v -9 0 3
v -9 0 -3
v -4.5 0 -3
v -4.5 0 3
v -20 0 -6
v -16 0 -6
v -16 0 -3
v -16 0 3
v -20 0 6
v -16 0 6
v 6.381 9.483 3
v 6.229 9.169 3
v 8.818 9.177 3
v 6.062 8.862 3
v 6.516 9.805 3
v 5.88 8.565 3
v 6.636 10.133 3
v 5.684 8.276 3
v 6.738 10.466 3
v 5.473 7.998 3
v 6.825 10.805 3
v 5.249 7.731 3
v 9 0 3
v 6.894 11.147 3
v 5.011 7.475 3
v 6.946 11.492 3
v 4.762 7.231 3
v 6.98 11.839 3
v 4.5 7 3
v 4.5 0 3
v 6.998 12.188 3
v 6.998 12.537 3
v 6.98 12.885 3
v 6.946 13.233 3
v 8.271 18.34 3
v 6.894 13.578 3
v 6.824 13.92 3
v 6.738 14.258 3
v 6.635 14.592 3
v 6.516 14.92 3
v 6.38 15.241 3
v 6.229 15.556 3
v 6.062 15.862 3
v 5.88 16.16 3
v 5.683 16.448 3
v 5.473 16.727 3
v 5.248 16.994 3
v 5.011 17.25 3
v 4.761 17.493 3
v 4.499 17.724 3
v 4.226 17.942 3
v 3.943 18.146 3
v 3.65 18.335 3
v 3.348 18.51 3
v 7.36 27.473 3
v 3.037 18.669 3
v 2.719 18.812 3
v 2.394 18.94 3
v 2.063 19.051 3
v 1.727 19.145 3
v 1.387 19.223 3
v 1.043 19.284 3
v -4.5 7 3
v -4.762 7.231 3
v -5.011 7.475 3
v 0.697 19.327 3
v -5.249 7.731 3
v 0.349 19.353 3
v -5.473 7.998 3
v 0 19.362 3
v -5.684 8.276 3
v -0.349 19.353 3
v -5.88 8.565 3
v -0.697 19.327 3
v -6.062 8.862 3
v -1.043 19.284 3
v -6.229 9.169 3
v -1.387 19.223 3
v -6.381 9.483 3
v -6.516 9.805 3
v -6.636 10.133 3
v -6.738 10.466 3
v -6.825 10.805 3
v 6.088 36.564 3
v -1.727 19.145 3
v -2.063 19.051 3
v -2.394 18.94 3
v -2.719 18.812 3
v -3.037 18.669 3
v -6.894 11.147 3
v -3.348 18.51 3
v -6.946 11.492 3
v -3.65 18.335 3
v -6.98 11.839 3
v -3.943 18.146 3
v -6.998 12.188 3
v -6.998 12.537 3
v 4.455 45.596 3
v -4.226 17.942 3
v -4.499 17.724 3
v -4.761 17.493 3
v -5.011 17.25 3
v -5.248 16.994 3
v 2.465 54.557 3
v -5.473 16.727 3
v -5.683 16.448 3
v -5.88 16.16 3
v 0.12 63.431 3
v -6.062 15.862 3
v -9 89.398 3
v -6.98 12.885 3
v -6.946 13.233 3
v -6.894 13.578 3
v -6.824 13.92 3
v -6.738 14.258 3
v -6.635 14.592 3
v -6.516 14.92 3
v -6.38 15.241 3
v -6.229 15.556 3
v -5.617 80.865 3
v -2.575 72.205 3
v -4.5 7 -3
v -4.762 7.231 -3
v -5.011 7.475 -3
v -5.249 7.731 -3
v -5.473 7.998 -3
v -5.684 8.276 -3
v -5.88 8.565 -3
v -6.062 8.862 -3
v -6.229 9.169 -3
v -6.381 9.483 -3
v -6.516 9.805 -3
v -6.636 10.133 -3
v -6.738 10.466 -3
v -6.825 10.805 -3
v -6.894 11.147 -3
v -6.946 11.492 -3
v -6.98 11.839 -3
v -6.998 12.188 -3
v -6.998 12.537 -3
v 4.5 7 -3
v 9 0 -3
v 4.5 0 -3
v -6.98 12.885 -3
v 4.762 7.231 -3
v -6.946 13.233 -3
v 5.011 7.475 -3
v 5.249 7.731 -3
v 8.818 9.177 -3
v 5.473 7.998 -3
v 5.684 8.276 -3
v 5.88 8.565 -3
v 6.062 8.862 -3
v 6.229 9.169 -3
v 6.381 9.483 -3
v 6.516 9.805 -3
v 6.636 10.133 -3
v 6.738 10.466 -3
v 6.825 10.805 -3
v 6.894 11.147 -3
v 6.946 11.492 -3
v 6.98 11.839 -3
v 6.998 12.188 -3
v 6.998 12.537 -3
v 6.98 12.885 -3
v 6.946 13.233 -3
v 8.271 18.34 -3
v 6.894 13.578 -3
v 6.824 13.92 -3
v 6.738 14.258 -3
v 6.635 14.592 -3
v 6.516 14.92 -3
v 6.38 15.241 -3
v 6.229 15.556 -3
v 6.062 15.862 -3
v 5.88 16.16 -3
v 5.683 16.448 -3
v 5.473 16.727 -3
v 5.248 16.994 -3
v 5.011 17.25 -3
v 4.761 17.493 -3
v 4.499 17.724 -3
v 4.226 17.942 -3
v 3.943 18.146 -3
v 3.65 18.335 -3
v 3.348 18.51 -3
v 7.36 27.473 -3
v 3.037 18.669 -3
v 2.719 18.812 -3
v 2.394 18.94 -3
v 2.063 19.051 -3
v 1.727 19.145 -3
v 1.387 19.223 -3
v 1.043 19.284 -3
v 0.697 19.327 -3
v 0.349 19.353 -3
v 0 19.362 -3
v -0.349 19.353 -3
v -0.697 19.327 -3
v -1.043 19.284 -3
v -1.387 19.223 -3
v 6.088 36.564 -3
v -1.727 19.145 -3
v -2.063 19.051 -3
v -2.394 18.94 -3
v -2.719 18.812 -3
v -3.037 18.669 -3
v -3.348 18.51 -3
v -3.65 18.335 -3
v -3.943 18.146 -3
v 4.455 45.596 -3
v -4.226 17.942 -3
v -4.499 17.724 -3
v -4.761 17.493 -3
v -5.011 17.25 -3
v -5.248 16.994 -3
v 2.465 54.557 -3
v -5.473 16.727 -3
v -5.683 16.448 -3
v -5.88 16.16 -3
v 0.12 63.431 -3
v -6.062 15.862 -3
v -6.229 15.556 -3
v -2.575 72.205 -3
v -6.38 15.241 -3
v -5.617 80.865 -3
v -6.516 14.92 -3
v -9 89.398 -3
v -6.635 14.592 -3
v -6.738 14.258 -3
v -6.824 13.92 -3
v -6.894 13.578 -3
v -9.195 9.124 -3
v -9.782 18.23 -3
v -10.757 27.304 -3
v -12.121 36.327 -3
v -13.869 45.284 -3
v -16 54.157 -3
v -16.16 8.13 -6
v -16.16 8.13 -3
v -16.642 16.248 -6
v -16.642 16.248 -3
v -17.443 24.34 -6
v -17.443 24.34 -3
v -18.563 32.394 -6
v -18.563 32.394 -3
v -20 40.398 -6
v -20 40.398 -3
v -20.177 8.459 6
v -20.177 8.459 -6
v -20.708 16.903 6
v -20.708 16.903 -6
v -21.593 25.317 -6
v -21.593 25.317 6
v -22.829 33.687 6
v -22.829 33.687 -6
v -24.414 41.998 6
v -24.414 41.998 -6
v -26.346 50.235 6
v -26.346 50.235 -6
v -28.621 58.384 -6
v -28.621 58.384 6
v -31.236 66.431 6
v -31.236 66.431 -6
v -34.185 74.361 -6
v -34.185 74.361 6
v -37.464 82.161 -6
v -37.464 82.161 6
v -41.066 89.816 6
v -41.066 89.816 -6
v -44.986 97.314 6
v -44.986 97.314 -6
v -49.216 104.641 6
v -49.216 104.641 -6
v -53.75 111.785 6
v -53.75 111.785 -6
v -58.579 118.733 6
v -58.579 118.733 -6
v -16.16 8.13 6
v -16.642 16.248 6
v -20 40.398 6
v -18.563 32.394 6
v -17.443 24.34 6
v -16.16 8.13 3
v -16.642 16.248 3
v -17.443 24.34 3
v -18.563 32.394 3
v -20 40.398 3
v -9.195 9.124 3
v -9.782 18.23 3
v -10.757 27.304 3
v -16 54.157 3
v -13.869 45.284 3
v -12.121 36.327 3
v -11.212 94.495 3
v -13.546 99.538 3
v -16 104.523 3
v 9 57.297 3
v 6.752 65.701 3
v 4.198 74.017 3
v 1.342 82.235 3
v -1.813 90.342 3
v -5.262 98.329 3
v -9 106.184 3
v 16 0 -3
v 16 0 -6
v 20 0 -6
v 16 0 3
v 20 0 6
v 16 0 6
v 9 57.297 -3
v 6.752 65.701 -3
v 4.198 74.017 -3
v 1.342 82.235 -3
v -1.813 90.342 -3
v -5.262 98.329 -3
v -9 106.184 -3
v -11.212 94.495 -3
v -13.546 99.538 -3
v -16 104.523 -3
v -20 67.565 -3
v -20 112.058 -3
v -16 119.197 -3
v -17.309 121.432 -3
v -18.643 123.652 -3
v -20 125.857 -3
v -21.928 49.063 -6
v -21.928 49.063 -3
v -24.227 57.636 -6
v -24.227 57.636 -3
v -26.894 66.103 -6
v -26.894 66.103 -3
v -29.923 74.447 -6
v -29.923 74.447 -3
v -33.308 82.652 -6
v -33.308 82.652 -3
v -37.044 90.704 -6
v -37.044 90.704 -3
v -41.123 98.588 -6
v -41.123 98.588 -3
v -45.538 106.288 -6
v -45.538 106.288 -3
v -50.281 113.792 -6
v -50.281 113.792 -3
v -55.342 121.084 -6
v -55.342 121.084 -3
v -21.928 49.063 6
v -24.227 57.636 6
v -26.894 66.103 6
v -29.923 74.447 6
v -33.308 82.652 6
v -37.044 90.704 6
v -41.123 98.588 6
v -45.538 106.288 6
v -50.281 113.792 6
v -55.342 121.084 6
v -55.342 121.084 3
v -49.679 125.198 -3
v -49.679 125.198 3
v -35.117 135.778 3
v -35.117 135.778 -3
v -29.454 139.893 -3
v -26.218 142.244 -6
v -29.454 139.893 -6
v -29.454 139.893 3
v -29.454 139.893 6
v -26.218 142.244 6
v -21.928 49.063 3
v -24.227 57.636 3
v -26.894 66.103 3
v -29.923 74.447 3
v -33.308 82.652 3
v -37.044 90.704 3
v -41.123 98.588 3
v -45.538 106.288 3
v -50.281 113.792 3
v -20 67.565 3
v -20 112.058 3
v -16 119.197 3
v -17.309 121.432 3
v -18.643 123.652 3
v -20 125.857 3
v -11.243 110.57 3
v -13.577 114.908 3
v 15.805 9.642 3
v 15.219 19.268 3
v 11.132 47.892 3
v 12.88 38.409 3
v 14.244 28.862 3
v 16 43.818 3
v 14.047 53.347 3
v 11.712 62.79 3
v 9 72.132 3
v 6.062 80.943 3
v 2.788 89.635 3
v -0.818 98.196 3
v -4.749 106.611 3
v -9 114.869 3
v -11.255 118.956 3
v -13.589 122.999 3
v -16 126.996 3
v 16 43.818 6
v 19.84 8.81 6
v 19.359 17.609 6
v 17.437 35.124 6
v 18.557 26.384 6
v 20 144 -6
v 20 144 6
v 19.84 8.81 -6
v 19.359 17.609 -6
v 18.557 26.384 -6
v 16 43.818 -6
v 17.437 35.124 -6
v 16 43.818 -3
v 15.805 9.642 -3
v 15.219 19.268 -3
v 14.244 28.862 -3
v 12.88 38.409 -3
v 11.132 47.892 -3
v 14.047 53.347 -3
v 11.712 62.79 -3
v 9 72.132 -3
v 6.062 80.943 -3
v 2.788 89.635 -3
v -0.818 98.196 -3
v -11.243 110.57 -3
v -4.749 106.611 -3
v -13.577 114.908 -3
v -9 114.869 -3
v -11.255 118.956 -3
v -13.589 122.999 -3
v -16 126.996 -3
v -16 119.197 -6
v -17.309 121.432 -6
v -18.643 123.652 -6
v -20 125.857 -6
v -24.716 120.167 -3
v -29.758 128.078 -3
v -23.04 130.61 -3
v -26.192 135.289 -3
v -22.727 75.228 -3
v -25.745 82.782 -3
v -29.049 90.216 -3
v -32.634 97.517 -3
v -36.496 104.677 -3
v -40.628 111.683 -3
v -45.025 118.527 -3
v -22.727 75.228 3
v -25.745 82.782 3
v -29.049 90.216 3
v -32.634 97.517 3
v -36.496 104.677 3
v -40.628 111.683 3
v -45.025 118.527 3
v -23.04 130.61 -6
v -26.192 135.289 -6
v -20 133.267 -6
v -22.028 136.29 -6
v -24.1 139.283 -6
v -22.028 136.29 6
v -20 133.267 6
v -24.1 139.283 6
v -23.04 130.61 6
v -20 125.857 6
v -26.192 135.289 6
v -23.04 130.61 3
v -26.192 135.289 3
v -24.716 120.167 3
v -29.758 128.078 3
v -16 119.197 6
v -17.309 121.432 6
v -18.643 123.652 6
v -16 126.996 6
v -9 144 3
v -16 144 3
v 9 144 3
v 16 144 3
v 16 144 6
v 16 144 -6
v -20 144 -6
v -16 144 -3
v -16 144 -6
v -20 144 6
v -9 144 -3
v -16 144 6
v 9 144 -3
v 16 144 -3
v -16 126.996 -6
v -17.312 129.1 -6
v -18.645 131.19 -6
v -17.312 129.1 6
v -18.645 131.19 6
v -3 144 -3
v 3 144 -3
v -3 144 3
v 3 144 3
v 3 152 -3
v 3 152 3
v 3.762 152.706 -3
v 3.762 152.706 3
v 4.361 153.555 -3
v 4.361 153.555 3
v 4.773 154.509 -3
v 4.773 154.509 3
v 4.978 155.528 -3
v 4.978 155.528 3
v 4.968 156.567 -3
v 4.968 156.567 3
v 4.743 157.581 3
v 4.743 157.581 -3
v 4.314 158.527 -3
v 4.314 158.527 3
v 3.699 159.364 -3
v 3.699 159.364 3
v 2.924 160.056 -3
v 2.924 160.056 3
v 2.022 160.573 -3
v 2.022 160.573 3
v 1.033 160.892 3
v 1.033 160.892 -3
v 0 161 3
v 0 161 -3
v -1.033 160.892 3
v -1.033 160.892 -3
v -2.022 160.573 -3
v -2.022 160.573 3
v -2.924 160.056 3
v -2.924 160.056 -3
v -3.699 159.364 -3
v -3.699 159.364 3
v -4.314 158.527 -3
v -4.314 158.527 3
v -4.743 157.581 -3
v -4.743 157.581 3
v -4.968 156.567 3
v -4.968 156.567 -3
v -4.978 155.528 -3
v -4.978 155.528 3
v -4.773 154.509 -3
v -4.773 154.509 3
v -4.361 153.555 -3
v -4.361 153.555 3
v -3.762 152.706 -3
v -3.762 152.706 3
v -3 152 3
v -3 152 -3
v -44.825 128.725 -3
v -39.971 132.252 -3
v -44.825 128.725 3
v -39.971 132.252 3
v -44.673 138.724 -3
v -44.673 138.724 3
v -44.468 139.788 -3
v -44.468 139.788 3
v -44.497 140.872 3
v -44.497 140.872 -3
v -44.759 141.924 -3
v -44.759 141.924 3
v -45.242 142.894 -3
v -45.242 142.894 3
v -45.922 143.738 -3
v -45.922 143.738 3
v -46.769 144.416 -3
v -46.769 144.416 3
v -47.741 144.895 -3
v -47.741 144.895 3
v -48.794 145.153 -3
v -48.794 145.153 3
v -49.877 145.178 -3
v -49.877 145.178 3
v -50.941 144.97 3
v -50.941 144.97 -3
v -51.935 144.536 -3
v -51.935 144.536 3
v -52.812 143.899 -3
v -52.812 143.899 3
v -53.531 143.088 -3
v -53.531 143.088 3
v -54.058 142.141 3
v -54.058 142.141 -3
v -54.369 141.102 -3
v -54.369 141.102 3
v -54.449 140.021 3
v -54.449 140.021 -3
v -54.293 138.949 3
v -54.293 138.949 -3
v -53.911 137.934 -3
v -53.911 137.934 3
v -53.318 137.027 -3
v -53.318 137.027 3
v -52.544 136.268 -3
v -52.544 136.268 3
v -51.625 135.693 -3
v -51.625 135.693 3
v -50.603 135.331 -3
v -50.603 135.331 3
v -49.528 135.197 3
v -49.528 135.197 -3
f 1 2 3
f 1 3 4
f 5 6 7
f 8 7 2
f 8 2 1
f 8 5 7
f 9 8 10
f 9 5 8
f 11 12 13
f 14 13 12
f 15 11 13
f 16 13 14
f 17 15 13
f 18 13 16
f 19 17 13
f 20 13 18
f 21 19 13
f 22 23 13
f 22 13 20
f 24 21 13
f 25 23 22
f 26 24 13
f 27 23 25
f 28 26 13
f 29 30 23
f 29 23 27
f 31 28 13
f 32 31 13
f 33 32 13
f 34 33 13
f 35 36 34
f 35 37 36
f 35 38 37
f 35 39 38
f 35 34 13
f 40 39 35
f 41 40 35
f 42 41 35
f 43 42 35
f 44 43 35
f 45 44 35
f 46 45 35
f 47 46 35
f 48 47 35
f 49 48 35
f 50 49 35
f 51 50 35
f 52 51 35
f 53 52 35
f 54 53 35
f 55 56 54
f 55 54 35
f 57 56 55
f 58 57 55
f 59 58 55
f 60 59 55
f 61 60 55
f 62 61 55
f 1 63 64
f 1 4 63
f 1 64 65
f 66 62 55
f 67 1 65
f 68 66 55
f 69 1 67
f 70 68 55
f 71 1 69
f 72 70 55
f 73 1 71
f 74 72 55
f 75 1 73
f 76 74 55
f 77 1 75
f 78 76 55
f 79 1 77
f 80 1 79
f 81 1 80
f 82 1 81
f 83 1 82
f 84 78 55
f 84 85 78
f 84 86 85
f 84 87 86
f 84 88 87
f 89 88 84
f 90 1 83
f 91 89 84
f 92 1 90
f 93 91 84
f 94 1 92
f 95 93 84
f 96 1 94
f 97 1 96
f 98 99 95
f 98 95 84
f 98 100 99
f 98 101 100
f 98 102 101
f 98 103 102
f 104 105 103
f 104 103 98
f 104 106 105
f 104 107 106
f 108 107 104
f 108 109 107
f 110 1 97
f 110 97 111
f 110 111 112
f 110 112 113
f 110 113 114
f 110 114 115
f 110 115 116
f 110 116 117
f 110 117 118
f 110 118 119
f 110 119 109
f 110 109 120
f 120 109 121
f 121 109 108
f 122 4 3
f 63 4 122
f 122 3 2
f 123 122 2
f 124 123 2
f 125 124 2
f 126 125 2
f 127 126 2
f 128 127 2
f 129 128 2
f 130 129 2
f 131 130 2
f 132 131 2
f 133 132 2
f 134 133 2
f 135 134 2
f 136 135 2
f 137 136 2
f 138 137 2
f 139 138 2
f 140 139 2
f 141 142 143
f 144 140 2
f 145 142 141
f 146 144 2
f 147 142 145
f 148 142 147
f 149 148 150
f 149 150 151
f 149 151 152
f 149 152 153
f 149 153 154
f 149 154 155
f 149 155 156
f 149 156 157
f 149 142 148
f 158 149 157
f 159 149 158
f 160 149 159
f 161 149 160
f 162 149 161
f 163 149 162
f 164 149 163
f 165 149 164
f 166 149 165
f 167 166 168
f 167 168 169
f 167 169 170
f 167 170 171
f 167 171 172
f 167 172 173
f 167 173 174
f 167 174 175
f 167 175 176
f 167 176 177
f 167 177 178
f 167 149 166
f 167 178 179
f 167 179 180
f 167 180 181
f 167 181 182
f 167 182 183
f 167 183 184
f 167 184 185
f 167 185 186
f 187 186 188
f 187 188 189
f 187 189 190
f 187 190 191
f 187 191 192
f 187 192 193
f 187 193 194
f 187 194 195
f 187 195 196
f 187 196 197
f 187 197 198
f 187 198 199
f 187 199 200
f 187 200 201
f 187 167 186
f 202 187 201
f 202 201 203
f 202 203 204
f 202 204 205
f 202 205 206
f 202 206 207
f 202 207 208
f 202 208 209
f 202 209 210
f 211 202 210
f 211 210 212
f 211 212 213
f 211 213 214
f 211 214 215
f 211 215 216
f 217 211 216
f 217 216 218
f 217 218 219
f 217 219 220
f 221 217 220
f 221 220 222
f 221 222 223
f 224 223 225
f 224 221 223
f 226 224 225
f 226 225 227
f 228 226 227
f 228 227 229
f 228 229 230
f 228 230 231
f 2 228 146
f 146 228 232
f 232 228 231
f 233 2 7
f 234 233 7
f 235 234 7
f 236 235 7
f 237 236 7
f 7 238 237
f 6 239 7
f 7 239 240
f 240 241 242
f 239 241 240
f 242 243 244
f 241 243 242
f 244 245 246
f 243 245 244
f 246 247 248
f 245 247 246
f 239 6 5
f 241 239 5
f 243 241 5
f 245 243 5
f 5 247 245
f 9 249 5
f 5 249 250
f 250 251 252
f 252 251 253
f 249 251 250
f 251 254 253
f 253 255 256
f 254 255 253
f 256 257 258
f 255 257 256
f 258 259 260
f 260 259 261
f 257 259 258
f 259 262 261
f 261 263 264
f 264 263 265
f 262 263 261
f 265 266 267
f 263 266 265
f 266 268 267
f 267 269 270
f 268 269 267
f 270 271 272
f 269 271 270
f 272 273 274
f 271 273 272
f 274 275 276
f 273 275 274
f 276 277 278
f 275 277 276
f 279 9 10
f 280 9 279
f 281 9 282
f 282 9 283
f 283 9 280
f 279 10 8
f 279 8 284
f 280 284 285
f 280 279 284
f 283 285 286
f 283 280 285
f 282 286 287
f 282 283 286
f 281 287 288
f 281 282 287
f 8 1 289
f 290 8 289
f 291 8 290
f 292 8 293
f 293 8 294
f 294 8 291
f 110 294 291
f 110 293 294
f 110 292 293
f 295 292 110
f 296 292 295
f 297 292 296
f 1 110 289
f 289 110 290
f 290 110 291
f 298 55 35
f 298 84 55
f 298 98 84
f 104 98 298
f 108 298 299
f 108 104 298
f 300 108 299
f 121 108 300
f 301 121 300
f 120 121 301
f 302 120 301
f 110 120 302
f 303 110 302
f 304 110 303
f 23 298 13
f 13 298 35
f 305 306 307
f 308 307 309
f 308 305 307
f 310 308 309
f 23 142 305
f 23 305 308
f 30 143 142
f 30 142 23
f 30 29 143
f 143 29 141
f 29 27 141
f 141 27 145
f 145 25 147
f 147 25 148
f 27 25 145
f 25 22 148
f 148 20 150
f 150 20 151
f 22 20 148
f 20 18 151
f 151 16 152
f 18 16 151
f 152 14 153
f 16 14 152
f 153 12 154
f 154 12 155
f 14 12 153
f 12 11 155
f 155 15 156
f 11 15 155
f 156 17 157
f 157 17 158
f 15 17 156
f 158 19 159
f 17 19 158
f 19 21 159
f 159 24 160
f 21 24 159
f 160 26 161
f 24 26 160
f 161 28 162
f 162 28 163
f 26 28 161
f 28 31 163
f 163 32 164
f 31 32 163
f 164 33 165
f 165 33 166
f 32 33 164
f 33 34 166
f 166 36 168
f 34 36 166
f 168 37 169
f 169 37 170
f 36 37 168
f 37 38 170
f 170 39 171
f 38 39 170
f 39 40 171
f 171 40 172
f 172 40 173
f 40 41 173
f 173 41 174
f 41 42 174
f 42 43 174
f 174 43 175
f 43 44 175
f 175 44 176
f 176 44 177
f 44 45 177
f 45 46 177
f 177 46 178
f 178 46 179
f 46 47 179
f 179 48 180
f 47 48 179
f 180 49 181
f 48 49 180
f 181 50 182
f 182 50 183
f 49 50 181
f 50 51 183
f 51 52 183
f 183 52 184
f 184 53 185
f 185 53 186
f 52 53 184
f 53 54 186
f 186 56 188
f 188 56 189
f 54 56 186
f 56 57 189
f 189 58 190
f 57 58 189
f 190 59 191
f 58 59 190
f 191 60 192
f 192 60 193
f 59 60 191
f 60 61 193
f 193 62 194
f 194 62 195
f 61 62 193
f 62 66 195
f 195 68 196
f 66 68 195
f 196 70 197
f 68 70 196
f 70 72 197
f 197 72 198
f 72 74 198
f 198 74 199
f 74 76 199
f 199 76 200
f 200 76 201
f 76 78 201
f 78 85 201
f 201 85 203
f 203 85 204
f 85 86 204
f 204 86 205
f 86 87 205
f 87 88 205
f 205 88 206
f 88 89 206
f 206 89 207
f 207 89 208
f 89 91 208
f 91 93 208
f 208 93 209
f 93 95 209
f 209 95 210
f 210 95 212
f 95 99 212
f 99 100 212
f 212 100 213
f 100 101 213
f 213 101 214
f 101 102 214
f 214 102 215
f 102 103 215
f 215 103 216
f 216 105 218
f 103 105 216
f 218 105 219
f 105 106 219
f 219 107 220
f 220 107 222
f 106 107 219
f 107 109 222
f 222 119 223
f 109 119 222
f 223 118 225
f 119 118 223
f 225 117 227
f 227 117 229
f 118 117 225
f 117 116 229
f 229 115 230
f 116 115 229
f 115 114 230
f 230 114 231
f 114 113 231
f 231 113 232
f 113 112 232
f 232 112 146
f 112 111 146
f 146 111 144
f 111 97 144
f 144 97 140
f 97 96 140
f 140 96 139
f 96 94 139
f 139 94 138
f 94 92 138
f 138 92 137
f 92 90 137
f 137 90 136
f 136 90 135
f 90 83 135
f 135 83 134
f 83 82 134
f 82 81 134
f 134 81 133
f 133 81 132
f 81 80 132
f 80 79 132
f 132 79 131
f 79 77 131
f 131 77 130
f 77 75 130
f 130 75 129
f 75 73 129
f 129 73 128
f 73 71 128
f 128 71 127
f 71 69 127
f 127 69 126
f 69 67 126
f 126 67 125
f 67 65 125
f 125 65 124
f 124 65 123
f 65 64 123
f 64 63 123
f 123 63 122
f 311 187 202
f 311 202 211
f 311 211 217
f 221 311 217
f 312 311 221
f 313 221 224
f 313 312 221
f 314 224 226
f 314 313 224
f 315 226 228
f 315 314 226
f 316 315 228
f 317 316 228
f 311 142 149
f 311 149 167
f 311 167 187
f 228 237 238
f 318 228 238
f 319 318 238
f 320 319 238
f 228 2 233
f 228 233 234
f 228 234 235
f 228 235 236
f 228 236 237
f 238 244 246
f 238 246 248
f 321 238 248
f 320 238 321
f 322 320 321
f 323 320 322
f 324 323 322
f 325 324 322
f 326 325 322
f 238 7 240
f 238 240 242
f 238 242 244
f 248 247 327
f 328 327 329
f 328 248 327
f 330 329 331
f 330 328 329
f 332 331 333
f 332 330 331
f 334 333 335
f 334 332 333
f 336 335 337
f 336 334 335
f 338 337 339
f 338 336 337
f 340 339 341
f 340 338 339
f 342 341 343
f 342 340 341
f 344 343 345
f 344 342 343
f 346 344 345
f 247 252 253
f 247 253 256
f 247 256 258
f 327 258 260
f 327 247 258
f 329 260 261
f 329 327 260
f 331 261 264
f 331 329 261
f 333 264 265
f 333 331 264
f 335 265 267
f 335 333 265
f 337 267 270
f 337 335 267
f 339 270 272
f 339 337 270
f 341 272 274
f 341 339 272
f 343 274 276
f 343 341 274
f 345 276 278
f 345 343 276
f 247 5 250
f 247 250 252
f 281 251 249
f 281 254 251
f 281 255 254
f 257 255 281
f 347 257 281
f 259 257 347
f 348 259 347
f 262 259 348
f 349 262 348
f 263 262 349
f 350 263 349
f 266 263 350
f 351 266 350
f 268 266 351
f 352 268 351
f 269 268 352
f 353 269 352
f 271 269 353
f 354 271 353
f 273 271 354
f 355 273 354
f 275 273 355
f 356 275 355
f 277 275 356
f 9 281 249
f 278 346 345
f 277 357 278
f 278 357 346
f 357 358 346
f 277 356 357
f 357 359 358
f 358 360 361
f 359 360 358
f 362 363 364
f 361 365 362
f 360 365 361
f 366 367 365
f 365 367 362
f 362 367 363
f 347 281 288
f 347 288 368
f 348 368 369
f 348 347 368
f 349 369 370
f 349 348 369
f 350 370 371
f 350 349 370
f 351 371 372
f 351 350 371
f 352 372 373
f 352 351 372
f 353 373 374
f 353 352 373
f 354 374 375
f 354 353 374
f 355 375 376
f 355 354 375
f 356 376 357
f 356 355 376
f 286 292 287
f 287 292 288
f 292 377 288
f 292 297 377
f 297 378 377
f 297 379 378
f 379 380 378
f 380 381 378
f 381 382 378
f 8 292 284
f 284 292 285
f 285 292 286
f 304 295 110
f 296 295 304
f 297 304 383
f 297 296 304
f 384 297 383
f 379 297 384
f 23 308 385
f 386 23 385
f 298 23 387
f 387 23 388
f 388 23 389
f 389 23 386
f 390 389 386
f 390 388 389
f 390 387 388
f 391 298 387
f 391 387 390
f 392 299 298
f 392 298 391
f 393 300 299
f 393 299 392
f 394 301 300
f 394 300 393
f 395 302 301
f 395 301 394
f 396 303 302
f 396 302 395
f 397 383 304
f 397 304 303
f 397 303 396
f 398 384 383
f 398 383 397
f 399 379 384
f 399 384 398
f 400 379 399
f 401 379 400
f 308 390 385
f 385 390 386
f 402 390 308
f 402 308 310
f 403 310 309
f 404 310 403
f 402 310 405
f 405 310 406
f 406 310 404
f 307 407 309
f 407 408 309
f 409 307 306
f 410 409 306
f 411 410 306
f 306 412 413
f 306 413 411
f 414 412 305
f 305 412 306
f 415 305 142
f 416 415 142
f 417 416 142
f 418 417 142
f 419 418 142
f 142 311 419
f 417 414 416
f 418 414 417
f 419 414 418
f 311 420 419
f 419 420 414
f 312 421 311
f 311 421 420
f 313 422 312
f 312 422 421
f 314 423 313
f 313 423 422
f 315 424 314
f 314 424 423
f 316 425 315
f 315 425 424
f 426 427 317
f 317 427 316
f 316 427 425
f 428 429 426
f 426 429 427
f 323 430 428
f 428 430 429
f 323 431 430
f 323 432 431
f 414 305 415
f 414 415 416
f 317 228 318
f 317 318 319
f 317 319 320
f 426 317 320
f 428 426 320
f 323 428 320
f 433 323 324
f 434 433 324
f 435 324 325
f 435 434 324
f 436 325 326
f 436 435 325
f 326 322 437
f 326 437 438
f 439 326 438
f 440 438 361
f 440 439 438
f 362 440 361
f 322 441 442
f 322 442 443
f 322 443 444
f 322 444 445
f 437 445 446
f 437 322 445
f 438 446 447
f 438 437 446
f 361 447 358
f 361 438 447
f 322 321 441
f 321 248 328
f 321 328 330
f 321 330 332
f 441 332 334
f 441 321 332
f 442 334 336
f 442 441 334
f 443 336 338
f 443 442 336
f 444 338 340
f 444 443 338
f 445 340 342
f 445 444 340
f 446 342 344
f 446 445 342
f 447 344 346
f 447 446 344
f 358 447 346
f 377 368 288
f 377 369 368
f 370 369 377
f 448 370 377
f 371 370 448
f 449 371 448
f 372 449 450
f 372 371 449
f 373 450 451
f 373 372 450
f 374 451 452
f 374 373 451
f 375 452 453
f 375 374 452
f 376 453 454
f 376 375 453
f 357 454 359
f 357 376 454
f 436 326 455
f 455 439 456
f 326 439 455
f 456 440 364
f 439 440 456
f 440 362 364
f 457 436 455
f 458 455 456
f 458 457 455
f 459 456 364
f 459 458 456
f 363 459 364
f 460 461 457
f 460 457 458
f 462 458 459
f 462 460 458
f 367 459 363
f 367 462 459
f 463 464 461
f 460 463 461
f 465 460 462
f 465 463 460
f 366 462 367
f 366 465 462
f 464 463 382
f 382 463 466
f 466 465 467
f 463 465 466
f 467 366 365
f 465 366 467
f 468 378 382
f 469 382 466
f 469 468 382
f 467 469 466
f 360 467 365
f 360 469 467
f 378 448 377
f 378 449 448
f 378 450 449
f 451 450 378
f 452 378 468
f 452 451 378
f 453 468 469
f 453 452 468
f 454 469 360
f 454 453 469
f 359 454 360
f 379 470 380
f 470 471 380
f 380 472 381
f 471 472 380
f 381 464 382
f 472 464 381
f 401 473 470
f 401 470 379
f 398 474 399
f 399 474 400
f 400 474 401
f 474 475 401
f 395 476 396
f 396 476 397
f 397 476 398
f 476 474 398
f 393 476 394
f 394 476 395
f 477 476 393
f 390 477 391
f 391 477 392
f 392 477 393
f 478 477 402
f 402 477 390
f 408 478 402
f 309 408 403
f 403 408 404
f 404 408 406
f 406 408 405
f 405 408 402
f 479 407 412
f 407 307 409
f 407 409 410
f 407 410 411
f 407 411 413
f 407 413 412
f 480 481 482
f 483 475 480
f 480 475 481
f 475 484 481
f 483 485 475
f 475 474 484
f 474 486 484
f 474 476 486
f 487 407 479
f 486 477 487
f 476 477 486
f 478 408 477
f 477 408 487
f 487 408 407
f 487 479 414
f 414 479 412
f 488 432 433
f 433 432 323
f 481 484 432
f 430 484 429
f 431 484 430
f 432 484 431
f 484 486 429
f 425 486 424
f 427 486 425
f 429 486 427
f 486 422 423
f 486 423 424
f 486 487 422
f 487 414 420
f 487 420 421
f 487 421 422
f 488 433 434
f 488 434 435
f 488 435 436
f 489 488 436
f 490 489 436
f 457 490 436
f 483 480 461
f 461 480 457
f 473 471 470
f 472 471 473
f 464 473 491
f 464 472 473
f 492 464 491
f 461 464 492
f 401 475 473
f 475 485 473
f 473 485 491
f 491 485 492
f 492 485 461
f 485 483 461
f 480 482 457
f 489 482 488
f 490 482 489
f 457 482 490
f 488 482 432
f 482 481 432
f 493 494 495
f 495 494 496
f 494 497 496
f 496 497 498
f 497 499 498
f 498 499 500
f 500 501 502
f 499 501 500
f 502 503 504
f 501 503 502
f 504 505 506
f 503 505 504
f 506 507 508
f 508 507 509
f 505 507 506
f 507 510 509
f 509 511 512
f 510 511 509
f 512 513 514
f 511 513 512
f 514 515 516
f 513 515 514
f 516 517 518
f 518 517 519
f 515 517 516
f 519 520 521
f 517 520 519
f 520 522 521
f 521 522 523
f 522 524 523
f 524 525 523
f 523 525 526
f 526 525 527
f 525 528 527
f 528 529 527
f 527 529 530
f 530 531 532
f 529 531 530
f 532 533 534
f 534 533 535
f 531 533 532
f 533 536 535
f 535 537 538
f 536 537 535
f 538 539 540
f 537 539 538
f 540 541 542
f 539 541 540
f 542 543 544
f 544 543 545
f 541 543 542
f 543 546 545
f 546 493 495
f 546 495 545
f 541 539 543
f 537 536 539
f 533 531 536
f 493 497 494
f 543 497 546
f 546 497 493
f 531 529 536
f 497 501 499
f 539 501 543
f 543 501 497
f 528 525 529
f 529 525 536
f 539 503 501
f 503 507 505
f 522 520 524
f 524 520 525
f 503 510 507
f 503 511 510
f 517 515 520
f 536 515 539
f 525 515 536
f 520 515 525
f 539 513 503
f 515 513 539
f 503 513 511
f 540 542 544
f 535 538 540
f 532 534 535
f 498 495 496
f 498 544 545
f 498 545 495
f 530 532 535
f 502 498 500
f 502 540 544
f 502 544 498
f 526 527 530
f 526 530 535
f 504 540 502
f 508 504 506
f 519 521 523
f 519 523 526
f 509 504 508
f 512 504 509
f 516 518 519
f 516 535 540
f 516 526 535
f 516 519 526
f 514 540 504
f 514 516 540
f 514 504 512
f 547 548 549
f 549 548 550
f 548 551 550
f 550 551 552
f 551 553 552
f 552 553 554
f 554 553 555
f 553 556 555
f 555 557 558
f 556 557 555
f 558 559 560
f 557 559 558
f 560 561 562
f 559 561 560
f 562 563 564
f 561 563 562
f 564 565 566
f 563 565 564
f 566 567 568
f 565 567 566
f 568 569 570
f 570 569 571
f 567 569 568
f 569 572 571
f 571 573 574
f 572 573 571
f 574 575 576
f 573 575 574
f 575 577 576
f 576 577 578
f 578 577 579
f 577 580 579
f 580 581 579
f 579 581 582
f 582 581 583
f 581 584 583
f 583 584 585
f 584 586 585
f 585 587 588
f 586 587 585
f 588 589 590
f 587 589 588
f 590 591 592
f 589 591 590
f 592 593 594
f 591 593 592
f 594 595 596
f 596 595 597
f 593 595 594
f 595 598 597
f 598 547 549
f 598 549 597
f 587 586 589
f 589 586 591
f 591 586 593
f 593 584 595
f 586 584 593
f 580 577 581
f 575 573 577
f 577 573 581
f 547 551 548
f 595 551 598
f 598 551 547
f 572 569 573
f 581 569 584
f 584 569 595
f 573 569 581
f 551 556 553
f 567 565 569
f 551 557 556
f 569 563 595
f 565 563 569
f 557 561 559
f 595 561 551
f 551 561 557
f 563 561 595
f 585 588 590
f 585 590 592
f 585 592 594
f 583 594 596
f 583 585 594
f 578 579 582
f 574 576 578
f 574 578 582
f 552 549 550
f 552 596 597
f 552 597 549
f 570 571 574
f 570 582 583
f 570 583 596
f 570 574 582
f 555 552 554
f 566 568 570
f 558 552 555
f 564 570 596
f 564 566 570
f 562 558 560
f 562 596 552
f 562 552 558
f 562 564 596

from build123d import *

# Parameters (mm, degrees)
SKETCH013_W       = 32
SKETCH013_H       = 3
POCKET_DEPTH      = 6.001
POCKET_DEPTH_BACK = -6.001
PAD001_DEPTH      = 3
PAD002_DEPTH      = 3


with BuildPart() as body:
    # AdditivePipe: sweep along a path in Sketch002
    with BuildLine(Plane.XY) as additivepipe_path:
        ThreePointArc((0, 0), (-10.865453, 68.601773), (-42.398227, 130.488326))
    # Sketch → AdditivePipe (sweep)
    with BuildSketch(Plane.XZ):
        Polygon((-20, 6), (-20, -6), (-16, -6), (-16, -3), (-9, -3), (9, -3), (16, -3), (16, -6), (20, -6), (20, 6), (16, 6), (16, 3), (9, 3), (-9, 3), (-16, 3), (-16, 6), align=None)
    sweep(path=additivepipe_path.line)

    # AdditivePipe001: sweep along a path in Sketch001
    with BuildLine(Plane.XY) as additivepipe001_path:
        Line((0, 0), (0, 144))
    # Sketch → AdditivePipe001 (sweep)
    with BuildSketch(Plane.XZ):
        Polygon((-20, 6), (-20, -6), (-16, -6), (-16, -3), (-9, -3), (9, -3), (16, -3), (16, -6), (20, -6), (20, 6), (16, 6), (16, 3), (9, 3), (-9, 3), (-16, 3), (-16, 6), align=None)
    sweep(path=additivepipe001_path.line)

    # SubtractivePipe: sweep along a path in Sketch002
    with BuildLine(Plane.XY) as subtractivepipe_path:
        ThreePointArc((0, 0), (-10.865453, 68.601773), (-42.398227, 130.488326))
    # Sketch013 (on Face1 of AdditivePipe001) → SubtractivePipe (sweep, cut)
    with BuildSketch(Plane.XZ):
        with Locations((0, 4.5)):
            Rectangle(SKETCH013_W, SKETCH013_H)
    subtractivepipe = sweep(path=subtractivepipe_path.line, mode=Mode.SUBTRACT)

    # SubtractivePipe001: sweep along a path in Sketch001
    with BuildLine(Plane.XY) as subtractivepipe001_path:
        Line((0, 0), (0, 144))
    # Sketch013 (on Face1 of AdditivePipe001) → SubtractivePipe001 (sweep, cut)
    with BuildSketch(Plane.XZ):
        with Locations((0, 4.5)):
            Rectangle(SKETCH013_W, SKETCH013_H)
    subtractivepipe001 = sweep(path=subtractivepipe001_path.line, mode=Mode.SUBTRACT)

    # Mirrored: SubtractivePipe across XY
    add(subtractivepipe.mirror(Plane.XY), mode=Mode.SUBTRACT)

    # Mirrored001: SubtractivePipe001 across XY
    add(subtractivepipe001.mirror(Plane.XY), mode=Mode.SUBTRACT)

    # Sketch014 → Pocket (cut, two sides)
    with BuildSketch(Plane.XY) as pocket_sk:
        with BuildLine():
            Line((-4.5, 0), (4.5, 0))
            Line((4.5, 0), (4.5, 7))
            ThreePointArc((4.5, 7), (0, 19.361903), (-4.5, 7))
            Line((-4.5, 0), (-4.5, 7))
        make_face()
    extrude(amount=-POCKET_DEPTH, mode=Mode.SUBTRACT)
    extrude(pocket_sk.sketch, amount=-POCKET_DEPTH_BACK, mode=Mode.SUBTRACT)


with BuildPart() as body002:
    # Sketch011 → Pad001 (new body, symmetric)
    with BuildSketch(Plane.XY):
        with BuildLine():
            Line((-3, 144), (3, 144))
            Line((3, 144), (3, 152))
            ThreePointArc((3, 152), (0, 161), (-3, 152))
            Line((-3, 144), (-3, 152))
        make_face()
    extrude(amount=PAD001_DEPTH, both=True)


with BuildPart() as body003:
    # Sketch012 → Pad002 (new body, symmetric)
    with BuildSketch(Plane.XY):
        with BuildLine():
            Line((-44.825278, 128.72497), (-39.971176, 132.251682))
            Line((-39.971176, 132.251682), (-44.673458, 138.723818))
            ThreePointArc((-44.673458, 138.723818), (-52.390577, 144.241615), (-49.52756, 135.197106))
            Line((-44.825278, 128.72497), (-49.52756, 135.197106))
        make_face()
    extrude(amount=PAD002_DEPTH, both=True)


solid = Compound([body.part, body002.part, body003.part])
